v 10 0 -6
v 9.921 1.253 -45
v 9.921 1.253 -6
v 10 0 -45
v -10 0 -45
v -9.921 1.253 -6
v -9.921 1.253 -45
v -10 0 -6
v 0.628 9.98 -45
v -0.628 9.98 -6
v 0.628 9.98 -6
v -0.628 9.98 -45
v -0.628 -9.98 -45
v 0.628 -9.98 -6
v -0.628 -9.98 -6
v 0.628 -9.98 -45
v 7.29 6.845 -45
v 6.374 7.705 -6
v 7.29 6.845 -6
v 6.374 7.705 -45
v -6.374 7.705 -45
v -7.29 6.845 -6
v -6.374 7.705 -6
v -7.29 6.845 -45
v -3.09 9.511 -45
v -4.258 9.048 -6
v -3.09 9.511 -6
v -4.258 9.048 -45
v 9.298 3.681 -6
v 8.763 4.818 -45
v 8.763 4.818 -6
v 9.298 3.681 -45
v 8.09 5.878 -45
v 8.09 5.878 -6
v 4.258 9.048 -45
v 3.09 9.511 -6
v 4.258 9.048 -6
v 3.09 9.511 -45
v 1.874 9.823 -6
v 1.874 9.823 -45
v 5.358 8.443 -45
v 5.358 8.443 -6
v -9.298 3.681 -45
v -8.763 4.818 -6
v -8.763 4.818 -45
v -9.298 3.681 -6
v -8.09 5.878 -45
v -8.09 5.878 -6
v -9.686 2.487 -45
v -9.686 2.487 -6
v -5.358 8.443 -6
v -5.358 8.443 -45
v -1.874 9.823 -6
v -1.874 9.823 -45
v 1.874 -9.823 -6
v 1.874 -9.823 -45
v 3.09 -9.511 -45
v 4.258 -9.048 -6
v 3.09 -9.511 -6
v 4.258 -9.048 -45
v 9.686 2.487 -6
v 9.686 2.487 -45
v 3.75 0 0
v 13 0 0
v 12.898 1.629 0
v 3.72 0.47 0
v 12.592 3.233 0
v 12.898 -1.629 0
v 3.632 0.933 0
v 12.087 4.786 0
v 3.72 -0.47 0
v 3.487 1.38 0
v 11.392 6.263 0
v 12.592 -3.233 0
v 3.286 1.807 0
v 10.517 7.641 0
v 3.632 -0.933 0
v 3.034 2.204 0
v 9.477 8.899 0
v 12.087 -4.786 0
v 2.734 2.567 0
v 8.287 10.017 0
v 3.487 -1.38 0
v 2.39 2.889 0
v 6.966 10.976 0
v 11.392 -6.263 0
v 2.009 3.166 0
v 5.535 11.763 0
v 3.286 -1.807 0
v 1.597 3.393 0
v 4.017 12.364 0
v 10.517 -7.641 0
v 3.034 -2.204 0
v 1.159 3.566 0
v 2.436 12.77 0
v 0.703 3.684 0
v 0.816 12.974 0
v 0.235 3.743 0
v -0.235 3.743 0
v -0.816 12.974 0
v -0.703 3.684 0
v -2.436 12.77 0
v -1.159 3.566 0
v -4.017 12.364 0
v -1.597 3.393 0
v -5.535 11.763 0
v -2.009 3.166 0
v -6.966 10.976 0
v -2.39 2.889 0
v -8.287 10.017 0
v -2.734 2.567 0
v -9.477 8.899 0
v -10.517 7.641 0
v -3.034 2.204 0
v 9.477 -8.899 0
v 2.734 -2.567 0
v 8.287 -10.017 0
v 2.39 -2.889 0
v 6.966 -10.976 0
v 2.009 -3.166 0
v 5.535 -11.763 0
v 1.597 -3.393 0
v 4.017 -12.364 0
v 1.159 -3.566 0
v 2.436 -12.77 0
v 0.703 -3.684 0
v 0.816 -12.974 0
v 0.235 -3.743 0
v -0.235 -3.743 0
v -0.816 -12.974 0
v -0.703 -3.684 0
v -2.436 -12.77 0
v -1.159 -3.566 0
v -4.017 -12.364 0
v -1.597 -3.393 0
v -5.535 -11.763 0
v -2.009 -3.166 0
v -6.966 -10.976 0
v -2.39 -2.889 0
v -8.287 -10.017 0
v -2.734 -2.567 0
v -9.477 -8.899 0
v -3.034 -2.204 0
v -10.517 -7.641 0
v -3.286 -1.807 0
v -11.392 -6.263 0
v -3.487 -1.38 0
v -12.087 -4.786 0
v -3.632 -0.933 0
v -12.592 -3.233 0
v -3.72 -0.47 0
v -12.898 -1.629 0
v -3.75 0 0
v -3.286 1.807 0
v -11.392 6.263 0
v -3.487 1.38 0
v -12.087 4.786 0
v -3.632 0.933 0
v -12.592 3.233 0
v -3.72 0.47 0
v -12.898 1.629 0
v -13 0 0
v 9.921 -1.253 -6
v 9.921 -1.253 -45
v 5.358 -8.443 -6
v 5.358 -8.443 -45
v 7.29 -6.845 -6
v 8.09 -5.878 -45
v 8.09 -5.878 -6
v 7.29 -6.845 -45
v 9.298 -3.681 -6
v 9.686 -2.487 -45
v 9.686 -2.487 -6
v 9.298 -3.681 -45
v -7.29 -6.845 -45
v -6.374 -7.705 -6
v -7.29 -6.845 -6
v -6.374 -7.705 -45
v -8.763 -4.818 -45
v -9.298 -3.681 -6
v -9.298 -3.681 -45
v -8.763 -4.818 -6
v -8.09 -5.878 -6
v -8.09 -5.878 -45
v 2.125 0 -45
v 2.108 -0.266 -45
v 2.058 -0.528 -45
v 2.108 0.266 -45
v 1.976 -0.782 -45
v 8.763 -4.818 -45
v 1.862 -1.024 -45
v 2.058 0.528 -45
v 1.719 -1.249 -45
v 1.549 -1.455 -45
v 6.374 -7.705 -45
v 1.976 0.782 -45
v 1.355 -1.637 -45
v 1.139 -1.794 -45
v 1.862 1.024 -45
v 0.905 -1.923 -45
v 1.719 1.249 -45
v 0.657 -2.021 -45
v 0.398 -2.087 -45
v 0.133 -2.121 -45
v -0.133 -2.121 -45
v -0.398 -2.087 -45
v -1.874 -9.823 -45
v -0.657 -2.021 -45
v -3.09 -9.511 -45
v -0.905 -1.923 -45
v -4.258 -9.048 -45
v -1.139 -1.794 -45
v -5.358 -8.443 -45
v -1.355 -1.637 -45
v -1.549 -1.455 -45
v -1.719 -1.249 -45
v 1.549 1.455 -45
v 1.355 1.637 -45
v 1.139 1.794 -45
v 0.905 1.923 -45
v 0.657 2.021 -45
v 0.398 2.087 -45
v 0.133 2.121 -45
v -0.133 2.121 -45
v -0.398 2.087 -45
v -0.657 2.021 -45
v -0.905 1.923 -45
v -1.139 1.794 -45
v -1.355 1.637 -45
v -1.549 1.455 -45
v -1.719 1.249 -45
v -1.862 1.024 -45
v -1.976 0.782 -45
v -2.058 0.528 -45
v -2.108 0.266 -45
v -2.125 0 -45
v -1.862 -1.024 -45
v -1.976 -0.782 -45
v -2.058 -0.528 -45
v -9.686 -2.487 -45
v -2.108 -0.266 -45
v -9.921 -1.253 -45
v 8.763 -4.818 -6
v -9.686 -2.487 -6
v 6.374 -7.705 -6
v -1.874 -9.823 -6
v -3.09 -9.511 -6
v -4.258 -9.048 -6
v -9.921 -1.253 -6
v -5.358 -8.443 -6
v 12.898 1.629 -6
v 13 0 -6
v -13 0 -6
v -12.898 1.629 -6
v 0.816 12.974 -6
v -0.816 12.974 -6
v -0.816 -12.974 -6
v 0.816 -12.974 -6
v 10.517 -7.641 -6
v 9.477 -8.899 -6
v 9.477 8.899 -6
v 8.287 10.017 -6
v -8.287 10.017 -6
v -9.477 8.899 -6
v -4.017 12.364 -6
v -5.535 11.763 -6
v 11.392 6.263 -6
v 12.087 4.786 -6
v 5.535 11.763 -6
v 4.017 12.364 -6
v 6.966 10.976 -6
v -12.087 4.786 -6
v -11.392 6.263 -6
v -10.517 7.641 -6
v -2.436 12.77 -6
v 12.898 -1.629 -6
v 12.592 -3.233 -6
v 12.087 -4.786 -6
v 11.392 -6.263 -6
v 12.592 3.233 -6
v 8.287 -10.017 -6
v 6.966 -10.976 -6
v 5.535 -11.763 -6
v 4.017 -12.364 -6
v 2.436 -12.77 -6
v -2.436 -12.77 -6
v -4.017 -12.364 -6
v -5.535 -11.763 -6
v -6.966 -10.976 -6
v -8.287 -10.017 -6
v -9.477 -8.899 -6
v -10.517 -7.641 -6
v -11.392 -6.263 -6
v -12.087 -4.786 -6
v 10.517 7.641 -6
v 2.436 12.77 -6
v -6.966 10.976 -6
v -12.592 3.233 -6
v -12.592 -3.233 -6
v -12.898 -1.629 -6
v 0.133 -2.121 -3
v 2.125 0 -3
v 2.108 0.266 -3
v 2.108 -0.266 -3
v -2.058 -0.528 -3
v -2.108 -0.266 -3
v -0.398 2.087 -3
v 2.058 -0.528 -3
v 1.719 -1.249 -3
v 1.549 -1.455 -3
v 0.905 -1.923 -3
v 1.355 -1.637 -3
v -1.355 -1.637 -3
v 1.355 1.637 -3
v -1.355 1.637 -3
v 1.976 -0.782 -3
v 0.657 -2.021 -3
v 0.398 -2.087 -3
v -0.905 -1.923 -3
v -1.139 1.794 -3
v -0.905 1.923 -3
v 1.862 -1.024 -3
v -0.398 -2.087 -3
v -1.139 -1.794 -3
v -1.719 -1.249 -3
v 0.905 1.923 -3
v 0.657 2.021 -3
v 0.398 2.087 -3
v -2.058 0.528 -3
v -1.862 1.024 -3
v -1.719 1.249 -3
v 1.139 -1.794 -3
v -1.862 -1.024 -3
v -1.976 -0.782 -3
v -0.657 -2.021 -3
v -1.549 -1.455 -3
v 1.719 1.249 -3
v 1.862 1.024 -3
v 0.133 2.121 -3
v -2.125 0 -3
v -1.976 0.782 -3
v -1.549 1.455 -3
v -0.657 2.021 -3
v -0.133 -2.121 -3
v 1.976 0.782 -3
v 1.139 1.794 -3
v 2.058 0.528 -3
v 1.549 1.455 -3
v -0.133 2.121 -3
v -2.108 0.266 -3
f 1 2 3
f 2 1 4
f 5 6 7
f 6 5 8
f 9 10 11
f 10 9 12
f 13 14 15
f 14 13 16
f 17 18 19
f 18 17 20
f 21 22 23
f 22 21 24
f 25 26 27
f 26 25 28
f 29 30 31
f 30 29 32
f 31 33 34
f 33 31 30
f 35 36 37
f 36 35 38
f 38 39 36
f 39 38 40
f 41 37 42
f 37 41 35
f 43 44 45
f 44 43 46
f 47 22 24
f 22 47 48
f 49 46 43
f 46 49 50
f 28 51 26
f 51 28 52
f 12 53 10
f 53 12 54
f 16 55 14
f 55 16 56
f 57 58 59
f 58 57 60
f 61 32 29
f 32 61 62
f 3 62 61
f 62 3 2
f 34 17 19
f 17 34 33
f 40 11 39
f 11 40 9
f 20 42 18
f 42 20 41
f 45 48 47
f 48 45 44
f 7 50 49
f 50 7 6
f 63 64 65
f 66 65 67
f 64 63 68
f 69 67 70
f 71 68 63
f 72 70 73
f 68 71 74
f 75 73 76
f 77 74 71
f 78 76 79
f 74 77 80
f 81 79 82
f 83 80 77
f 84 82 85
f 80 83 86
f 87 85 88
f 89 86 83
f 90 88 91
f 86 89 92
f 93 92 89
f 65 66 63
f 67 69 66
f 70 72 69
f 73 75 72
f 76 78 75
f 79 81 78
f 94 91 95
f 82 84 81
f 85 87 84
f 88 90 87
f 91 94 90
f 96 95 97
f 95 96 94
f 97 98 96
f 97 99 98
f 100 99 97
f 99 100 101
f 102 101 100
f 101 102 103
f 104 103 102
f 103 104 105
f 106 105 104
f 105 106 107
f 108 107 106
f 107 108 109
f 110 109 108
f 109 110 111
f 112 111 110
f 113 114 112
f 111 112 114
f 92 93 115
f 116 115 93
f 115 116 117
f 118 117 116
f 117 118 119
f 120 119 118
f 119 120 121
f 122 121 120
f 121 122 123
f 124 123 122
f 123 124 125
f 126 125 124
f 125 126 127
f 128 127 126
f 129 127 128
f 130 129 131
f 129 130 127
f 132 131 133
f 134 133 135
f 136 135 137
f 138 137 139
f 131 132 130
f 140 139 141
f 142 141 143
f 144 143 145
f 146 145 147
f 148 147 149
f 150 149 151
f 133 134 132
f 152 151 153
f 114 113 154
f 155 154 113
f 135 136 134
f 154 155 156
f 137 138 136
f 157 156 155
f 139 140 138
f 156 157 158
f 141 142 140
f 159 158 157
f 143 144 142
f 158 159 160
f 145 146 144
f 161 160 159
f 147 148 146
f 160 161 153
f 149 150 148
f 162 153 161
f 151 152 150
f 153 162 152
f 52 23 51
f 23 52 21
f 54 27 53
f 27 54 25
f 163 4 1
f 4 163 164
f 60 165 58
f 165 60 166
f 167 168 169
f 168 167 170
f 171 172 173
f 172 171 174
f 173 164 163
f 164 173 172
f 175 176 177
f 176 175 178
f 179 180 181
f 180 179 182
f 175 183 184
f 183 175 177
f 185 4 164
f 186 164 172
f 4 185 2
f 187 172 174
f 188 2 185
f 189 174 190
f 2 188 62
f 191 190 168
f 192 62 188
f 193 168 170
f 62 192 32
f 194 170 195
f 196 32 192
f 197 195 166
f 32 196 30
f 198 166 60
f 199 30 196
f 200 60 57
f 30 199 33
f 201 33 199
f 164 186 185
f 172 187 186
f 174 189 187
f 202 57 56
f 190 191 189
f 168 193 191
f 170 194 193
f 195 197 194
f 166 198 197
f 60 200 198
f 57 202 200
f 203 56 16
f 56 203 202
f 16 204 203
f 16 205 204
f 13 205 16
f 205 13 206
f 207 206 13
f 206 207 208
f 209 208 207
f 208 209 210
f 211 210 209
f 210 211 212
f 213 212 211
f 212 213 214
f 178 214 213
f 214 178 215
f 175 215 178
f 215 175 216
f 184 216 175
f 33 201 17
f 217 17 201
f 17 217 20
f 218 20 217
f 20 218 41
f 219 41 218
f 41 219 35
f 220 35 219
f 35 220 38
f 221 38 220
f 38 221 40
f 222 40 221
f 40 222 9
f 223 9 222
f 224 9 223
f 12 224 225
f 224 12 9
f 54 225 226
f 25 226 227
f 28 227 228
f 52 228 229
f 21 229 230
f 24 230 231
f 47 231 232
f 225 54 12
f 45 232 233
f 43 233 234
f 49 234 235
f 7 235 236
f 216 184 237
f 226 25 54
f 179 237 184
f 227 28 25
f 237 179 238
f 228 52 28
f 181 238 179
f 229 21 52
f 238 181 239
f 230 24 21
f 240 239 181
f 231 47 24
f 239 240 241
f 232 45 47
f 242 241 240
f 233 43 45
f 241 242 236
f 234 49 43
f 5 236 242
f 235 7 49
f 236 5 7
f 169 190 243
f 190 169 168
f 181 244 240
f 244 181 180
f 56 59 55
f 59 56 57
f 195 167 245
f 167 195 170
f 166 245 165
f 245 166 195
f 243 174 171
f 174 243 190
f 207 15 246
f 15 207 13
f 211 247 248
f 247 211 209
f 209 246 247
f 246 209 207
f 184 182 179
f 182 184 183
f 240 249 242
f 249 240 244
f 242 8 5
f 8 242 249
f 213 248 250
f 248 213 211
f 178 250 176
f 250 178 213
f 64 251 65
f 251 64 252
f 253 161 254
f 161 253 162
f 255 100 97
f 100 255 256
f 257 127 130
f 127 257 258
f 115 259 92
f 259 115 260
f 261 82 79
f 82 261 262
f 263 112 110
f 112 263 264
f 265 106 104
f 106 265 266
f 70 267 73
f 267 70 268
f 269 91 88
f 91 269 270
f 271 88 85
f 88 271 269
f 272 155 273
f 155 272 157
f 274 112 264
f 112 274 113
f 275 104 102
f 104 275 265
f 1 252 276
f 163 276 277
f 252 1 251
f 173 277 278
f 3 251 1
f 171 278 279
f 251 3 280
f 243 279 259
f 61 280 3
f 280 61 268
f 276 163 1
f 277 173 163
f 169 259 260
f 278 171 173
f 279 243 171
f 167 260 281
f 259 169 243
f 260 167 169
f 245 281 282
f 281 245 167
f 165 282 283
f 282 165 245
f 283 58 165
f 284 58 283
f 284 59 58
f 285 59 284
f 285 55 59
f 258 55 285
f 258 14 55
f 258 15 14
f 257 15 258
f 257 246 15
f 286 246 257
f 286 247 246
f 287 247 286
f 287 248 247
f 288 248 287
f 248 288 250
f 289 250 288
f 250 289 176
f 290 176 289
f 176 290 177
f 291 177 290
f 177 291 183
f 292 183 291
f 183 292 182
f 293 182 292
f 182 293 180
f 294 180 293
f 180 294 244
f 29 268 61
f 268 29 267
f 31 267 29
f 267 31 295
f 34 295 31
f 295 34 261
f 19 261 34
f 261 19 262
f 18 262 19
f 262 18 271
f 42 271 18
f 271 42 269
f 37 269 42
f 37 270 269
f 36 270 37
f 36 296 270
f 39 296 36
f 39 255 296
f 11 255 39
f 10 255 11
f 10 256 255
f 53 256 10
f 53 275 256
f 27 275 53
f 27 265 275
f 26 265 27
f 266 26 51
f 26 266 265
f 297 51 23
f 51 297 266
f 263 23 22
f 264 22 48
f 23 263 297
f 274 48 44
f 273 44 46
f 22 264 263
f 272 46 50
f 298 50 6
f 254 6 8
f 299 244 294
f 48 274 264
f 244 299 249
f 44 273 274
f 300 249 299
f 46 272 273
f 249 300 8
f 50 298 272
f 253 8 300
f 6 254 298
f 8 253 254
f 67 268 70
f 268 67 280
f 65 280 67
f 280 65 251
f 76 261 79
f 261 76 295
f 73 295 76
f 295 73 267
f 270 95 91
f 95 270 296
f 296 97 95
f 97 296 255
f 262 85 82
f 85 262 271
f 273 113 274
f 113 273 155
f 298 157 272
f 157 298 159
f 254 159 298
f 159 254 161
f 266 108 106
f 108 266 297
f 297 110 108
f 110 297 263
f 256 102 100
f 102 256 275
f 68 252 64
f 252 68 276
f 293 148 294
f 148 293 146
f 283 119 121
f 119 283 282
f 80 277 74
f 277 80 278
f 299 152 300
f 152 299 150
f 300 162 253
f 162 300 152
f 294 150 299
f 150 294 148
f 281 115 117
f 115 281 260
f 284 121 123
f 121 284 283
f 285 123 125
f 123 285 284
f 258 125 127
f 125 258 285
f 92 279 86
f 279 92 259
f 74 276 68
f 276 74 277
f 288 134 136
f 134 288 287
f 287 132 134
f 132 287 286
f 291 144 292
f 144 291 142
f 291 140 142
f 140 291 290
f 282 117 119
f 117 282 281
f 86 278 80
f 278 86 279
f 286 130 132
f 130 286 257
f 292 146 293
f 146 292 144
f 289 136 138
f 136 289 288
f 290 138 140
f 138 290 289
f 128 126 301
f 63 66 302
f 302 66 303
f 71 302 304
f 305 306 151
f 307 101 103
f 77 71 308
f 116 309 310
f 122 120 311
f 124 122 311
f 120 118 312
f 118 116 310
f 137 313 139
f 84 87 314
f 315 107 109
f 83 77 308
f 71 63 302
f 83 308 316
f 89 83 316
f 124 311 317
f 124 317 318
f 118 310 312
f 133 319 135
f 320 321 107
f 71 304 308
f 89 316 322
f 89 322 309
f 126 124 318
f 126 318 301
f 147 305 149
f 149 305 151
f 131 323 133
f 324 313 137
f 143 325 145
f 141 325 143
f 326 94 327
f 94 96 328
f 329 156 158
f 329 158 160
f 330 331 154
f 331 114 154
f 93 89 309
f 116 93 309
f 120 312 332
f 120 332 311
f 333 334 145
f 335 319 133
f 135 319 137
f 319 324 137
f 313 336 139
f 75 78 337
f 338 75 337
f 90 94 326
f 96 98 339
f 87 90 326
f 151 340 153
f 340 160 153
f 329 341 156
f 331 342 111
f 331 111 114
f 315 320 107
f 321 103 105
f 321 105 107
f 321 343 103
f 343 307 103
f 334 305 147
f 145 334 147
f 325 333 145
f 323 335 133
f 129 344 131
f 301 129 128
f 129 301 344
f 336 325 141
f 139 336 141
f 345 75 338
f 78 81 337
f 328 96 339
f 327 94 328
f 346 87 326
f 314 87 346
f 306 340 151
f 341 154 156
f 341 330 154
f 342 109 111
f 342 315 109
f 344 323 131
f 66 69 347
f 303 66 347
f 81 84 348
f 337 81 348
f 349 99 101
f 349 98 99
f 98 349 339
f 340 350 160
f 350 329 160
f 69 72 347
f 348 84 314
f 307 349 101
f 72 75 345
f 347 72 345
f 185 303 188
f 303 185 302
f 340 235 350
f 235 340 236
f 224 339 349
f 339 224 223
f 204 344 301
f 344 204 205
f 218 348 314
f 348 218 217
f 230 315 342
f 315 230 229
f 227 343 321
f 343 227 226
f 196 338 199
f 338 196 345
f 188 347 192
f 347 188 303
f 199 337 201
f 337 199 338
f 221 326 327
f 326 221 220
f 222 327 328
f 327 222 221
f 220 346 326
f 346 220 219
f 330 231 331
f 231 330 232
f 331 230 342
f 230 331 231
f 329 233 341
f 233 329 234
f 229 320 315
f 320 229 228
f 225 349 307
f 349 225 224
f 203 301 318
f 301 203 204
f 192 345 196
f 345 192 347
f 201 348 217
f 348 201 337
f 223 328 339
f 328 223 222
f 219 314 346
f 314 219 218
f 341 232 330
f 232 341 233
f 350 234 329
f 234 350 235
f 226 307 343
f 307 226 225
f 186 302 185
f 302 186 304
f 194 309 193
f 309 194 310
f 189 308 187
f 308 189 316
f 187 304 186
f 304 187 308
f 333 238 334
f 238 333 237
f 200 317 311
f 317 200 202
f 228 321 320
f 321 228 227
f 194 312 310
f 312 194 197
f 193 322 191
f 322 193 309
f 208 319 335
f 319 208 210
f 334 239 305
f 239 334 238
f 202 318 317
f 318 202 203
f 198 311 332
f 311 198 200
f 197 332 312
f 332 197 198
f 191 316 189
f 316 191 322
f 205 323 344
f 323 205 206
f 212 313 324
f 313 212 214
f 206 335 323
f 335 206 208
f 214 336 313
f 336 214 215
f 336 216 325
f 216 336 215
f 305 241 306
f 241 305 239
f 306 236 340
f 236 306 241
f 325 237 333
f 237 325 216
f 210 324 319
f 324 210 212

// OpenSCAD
$fn = 50;


difference() {
	union() {
		translate(v = [0, 0, -45.0000000000]) {
			cylinder(h = 45, r = 10.0000000000);
		}
		translate(v = [0, 0, -6.0000000000]) {
			cylinder(h = 6, r = 13.0000000000);
		}
	}
	union() {
		translate(v = [0, 0, 0]) {
			rotate(a = [0, 0, 0]) {
				difference() {
					union() {
						#translate(v = [0, 0, -45.0000000000]) {
							cylinder(h = 45, r = 2.0000000000);
						}
						#translate(v = [0, 0, -3]) {
							cylinder(h = 3, r = 10.0000000000, r1 = 2.1250000000, r2 = 3.7500000000);
						}
						#translate(v = [0, 0, -45.0000000000]) {
							cylinder(h = 45, r = 2.1250000000);
						}
						#translate(v = [0, 0, -45.0000000000]) {
							cylinder(h = 45, r = 2.0000000000);
						}
					}
					union();
				}
			}
		}
	}
}
